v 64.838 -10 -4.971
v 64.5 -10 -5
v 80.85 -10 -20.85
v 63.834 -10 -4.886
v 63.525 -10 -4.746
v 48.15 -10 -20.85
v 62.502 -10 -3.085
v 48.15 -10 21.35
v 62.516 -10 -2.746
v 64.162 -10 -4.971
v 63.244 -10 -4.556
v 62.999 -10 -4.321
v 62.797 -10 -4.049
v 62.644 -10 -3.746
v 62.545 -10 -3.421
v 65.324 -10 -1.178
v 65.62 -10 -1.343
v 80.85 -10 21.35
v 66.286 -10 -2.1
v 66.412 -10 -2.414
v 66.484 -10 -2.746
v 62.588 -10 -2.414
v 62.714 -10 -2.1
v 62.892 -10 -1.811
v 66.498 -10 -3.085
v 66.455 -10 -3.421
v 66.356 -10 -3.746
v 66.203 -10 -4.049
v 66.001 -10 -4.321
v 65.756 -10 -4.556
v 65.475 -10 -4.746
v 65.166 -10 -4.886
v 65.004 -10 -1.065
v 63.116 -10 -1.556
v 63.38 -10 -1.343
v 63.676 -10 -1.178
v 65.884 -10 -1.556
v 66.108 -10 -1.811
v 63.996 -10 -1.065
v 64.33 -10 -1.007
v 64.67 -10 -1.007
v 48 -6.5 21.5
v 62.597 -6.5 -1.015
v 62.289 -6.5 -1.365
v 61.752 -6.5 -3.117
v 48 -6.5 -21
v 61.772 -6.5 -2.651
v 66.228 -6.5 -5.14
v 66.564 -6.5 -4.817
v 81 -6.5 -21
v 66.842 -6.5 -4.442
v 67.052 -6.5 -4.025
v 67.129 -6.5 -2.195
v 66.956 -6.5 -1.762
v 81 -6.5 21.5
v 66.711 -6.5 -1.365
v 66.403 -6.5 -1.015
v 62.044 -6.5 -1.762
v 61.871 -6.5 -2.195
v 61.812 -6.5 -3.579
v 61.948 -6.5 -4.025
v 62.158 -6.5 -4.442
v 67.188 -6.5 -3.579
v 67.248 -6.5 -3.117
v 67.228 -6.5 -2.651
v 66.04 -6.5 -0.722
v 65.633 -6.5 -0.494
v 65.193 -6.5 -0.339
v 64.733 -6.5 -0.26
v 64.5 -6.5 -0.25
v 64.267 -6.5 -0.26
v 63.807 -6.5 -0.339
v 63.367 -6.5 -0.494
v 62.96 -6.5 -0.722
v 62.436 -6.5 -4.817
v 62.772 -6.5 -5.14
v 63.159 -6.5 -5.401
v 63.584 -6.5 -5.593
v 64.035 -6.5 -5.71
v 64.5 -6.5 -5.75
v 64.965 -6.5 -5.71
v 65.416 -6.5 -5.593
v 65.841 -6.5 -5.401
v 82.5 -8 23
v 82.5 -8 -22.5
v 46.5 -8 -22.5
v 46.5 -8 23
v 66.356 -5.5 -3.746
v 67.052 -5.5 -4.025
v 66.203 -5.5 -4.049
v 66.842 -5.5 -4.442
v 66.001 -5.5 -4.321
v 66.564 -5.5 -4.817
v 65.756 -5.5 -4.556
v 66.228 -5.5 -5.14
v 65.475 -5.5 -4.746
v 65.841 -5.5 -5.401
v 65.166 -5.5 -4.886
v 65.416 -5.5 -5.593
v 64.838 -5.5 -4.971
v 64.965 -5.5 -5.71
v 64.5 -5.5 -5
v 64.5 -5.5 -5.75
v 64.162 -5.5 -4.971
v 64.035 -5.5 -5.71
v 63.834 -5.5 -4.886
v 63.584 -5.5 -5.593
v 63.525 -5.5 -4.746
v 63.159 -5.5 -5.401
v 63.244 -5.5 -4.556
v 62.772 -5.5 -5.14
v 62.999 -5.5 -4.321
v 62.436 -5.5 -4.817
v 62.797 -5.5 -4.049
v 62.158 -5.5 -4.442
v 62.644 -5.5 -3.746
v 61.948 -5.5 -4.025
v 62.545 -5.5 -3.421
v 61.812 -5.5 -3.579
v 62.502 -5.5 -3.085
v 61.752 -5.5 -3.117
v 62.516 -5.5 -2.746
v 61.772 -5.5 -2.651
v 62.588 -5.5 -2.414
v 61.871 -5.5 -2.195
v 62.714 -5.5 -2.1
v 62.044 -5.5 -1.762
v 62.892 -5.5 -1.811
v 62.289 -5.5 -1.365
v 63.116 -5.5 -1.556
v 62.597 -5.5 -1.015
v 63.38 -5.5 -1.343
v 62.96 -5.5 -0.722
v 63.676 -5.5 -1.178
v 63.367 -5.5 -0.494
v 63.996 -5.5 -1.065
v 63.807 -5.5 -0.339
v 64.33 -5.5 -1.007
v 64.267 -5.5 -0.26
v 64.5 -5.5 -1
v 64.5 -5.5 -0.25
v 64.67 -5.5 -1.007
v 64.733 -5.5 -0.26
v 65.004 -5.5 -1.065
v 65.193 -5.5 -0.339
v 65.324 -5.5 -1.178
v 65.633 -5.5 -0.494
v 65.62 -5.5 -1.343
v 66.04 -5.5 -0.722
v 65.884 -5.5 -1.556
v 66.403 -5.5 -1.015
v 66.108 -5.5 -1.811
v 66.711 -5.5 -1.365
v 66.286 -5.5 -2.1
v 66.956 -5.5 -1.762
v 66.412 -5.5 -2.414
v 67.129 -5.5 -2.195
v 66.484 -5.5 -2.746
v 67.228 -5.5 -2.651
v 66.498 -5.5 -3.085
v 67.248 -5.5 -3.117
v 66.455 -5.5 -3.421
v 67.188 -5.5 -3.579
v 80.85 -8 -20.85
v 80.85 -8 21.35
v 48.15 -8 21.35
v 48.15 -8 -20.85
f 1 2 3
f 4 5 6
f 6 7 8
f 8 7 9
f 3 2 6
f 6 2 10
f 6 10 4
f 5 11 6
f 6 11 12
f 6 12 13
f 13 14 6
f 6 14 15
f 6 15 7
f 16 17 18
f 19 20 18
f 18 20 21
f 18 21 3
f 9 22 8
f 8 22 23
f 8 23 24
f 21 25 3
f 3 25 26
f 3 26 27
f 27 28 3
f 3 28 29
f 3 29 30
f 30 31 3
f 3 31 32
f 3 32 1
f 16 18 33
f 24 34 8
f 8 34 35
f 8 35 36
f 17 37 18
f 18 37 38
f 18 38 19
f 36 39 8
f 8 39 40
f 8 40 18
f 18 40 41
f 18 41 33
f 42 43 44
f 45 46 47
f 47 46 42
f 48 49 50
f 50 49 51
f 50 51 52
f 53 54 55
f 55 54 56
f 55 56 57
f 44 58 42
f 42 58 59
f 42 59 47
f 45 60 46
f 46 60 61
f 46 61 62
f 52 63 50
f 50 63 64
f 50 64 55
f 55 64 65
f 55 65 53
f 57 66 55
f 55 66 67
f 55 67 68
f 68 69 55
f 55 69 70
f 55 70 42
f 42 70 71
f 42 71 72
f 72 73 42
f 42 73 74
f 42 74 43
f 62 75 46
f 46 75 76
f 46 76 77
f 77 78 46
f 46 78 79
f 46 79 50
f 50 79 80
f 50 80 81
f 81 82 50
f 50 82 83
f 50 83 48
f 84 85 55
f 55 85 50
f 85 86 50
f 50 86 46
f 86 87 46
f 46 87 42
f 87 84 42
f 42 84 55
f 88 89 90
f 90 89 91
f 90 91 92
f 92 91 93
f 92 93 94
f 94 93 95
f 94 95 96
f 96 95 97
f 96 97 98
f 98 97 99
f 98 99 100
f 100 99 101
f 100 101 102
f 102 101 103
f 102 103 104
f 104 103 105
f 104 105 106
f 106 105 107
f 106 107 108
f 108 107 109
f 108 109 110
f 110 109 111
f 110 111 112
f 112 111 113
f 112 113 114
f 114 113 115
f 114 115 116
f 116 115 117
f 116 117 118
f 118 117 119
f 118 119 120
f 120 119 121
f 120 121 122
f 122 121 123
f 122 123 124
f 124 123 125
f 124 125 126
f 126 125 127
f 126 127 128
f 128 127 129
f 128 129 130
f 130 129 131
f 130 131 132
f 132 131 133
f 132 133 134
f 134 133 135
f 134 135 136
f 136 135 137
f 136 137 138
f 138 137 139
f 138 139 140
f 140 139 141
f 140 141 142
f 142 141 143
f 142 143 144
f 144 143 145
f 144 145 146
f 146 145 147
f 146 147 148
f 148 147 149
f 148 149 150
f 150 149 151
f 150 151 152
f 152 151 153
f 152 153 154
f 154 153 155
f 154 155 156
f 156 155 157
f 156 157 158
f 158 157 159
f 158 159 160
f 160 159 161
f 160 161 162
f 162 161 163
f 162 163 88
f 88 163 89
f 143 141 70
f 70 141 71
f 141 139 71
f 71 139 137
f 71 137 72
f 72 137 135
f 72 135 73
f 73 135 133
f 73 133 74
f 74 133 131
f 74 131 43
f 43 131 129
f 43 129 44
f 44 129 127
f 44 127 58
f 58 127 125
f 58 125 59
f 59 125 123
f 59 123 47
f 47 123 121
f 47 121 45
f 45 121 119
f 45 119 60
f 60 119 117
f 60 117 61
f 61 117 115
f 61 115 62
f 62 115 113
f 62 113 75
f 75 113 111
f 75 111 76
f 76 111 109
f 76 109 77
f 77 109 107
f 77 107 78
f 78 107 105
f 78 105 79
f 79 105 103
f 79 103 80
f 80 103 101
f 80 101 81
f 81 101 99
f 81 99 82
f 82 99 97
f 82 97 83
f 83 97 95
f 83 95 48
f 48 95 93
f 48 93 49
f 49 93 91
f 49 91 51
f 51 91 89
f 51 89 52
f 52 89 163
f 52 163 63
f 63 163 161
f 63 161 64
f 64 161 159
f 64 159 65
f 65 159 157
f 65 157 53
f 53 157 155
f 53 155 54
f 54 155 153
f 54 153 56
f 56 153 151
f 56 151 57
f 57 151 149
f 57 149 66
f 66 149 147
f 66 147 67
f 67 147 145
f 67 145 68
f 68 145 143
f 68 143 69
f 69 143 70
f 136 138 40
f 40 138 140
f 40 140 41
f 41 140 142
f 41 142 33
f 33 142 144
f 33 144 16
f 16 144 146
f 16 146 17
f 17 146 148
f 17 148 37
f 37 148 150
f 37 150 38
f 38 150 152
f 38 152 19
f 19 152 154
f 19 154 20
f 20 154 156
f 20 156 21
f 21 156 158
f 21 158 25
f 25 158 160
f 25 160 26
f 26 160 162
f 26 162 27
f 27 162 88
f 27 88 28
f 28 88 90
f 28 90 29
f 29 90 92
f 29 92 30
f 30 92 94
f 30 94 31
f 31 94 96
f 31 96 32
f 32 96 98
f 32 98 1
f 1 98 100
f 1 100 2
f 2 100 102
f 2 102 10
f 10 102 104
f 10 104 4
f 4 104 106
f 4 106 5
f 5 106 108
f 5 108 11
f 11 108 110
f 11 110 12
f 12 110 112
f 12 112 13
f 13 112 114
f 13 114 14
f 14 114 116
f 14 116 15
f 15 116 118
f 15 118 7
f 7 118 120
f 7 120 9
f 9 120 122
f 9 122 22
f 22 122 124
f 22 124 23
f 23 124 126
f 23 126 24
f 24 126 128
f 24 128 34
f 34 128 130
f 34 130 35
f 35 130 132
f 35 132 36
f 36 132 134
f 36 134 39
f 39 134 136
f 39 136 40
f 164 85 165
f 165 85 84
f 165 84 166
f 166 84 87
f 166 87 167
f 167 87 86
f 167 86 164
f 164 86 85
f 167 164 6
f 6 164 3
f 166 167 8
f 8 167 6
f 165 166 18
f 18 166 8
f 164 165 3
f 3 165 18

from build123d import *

# Parameters (mm, degrees)
TOP_EDGE_OUTLINE_W  = 86.5
TOP_EDGE_OUTLINE_H  = 39.5
TOP_EDGE_DEPTH      = 3
TOP_EDGE_DRAFT      = 45
SKETCH13_W          = 72
SKETCH13_H          = 25
DISPLAY_HOLE_DEPTH  = 6
SKETCH14_W          = 92.5
SKETCH14_H          = 45.5
SKETCH14_W_2        = 89.5
SKETCH14_H_2        = 42.5
BOSS_EXTRUDE5_DEPTH = 5
SKETCH15_W          = 128.5
SKETCH15_H          = 45.5
SKETCH15_W_2        = 89.5
SKETCH15_H_2        = 42.5
BOSS_EXTRUDE6_DEPTH = 2
SKETCH16_W          = 128.5
SKETCH16_H          = 45.5
SKETCH16_W_2        = 125.5
SKETCH16_H_2        = 42.5
BOSS_EXTRUDE7_DEPTH = 37
LOFT2_OUTLINE_W     = 33
LOFT2_OUTLINE_H     = 42.5
LOFT2_DEPTH         = 1.5
LOFT2_DRAFT         = 45
SKETCH19_R          = 2.75
SKETCH19_R_2        = 2
BOSS_EXTRUDE8_DEPTH = 1
CUT_EXTRUDE3_START  = -11
SKETCH20_R          = 2
CUT_EXTRUDE3_DEPTH  = 11
SKETCH21_W          = 12
SKETCH21_H          = 8
CUT_EXTRUDE4_DEPTH  = 11
SKETCH22_W          = 4
SKETCH22_H          = 15
BOSS_EXTRUDE9_DEPTH = 3
SKETCH24_W          = 42.5
SKETCH24_H          = 37
CUT_EXTRUDE5_DEPTH  = 17
SKETCH26_W          = 144.369132995
SKETCH26_H          = 91.038744315
CUT_EXTRUDE6_DEPTH  = 87
SKETCH27_W          = 64.71229982
SKETCH27_H          = 55.593249081
CUT_EXTRUDE7_DEPTH  = 148
SKETCH29_W          = 36
SKETCH29_H          = 45.5
SKETCH29_W_2        = 32.7
SKETCH29_H_2        = 42.2
CUT_EXTRUDE8_DEPTH  = 2


# Read off the part's stored shape, not the designer's step: Top Edge, Loft2
with BuildPart() as part:
    # Top Edge outline → Top Edge (with draft: the straight prism first)
    with BuildSketch(Plane(origin=(0, 0, 0), x_dir=(1, 0, 0), z_dir=(0, 1, 0))):
        with Locations((0.25, -0.25)):
            Rectangle(TOP_EDGE_OUTLINE_W, TOP_EDGE_OUTLINE_H)
    extrude(amount=-TOP_EDGE_DEPTH)
    # Top Edge: the draft: its side faces are tilted about the plane it starts from
    top_edge_sides = [part.faces().sort_by_distance(p)[0] for p in [
        (-43, -1.5, 0.25),
        (0.25, -1.5, 20),
        (43.5, -1.5, 0.25),
        (0.25, -1.5, -19.5),
    ]]
    draft(top_edge_sides, Plane(origin=(0, 0, 0), x_dir=(1, 0, 0), z_dir=(0, 1, 0)), TOP_EDGE_DRAFT)

    # Sketch13 → Display Hole (cut)
    with BuildSketch(Plane(origin=(0, 0, 0), x_dir=(1, 0, 0), z_dir=(0, 1, 0))):
        Rectangle(SKETCH13_W, SKETCH13_H)
    extrude(amount=-DISPLAY_HOLE_DEPTH, mode=Mode.SUBTRACT)

    # Sketch14 → Boss-Extrude5 (add)
    with BuildSketch(Plane.XZ.offset(3)):
        with Locations((0.25, 0.25)):
            Rectangle(SKETCH14_W, SKETCH14_H)
        with Locations((0.25, 0.25)):
            Rectangle(SKETCH14_W_2, SKETCH14_H_2, mode=Mode.SUBTRACT)
    extrude(amount=BOSS_EXTRUDE5_DEPTH)

    # Sketch15 → Boss-Extrude6 (add)
    with BuildSketch(Plane.XZ.offset(8)):
        with Locations((18.25, 0.25)):
            Rectangle(SKETCH15_W, SKETCH15_H)
        with Locations((0.25, 0.25)):
            Rectangle(SKETCH15_W_2, SKETCH15_H_2, mode=Mode.SUBTRACT)
    extrude(amount=BOSS_EXTRUDE6_DEPTH)

    # Sketch16 → Boss-Extrude7 (add)
    with BuildSketch(Plane.XZ.offset(10)):
        with Locations((18.25, 0.25)):
            Rectangle(SKETCH16_W, SKETCH16_H)
        with Locations((18.25, 0.25)):
            Rectangle(SKETCH16_W_2, SKETCH16_H_2, mode=Mode.SUBTRACT)
    extrude(amount=BOSS_EXTRUDE7_DEPTH)


with BuildPart() as loft2_tool:
    # Loft2 outline → Loft2 (with draft: the straight prism first)
    with BuildSketch(Plane(origin=(0, -6.5, 0), x_dir=(1, 0, 0), z_dir=(0, 1, 0))):
        with Locations((64.5, -0.25)):
            Rectangle(LOFT2_OUTLINE_W, LOFT2_OUTLINE_H)
    extrude(amount=-LOFT2_DEPTH)
    # Loft2: the draft: its side faces are tilted about the plane it starts from
    loft2_sides = [loft2_tool.faces().sort_by_distance(p)[0] for p in [
        (81, -7.25, 0.25),
        (64.5, -7.25, -21),
        (48, -7.25, 0.25),
        (64.5, -7.25, 21.5),
    ]]
    draft(loft2_sides, Plane(origin=(0, -6.5, 0), x_dir=(1, 0, 0), z_dir=(0, 1, 0)), LOFT2_DRAFT)


with BuildPart() as part_1:
    add(part.part)

    # Loft2: add loft2_tool
    add(loft2_tool.part)

    # Sketch19 → Boss-Extrude8 (add)
    with BuildSketch(Plane(origin=(0, -6.5, 0), x_dir=(1, 0, 0), z_dir=(0, 1, 0))):
        with Locations(Location((64.5, 3, 0), (0, 0, 270))):
            Circle(SKETCH19_R)
        with Locations(Location((64.5, 3, 0), (0, 0, 270))):
            Circle(SKETCH19_R_2, mode=Mode.SUBTRACT)
    extrude(amount=BOSS_EXTRUDE8_DEPTH)

    # Sketch20 → Cut-Extrude3 (cut)
    with BuildSketch(Plane(origin=(0, -6.5, 0), x_dir=(1, 0, 0), z_dir=(0, 1, 0)).offset(CUT_EXTRUDE3_START)):
        with Locations(Location((64.5, 3, 0), (0, 0, 90))):
            Circle(SKETCH20_R)
    extrude(amount=CUT_EXTRUDE3_DEPTH, mode=Mode.SUBTRACT)

    # Sketch21 → Cut-Extrude4 (cut)
    with BuildSketch(Plane(origin=(82.5, 0, 0), x_dir=(0, 0, -1), z_dir=(1, 0, 0))):
        with Locations((0, -43)):
            Rectangle(SKETCH21_W, SKETCH21_H)
    extrude(amount=-CUT_EXTRUDE4_DEPTH, mode=Mode.SUBTRACT)

    # Sketch22 → Boss-Extrude9 (add)
    with BuildSketch(Plane.XZ.offset(3)):
        with Locations((-38, 0)):
            Rectangle(SKETCH22_W, SKETCH22_H)
    extrude(amount=BOSS_EXTRUDE9_DEPTH)

    # Sketch24 → Cut-Extrude5 (cut)
    with BuildSketch(Plane.ZY.offset(-81)):
        with Locations((0.25, -28.5)):
            Rectangle(SKETCH24_W, SKETCH24_H)
    extrude(amount=-CUT_EXTRUDE5_DEPTH, mode=Mode.SUBTRACT)

    # Sketch26 → Cut-Extrude6 (cut)
    with BuildSketch(Plane.XZ.offset(10)):
        with Locations((18.609127197, -2.802581171)):
            Rectangle(SKETCH26_W, SKETCH26_H)
    extrude(amount=CUT_EXTRUDE6_DEPTH, mode=Mode.SUBTRACT)

    # Sketch27 → Cut-Extrude7 (cut)
    with BuildSketch(Plane(origin=(46.5, 0, 0), x_dir=(0, 0, -1), z_dir=(1, 0, 0))):
        with Locations((3.100976476, -7.362126245)):
            Rectangle(SKETCH27_W, SKETCH27_H)
    extrude(amount=-CUT_EXTRUDE7_DEPTH, mode=Mode.SUBTRACT)

    # Sketch29 → Cut-Extrude8 (cut)
    with BuildSketch(Plane.XZ.offset(10)):
        with Locations((64.5, 0.25)):
            Rectangle(SKETCH29_W, SKETCH29_H)
        with Locations((64.5, 0.25)):
            Rectangle(SKETCH29_W_2, SKETCH29_H_2, mode=Mode.SUBTRACT)
    extrude(amount=-CUT_EXTRUDE8_DEPTH, mode=Mode.SUBTRACT)


solid = part_1.part
